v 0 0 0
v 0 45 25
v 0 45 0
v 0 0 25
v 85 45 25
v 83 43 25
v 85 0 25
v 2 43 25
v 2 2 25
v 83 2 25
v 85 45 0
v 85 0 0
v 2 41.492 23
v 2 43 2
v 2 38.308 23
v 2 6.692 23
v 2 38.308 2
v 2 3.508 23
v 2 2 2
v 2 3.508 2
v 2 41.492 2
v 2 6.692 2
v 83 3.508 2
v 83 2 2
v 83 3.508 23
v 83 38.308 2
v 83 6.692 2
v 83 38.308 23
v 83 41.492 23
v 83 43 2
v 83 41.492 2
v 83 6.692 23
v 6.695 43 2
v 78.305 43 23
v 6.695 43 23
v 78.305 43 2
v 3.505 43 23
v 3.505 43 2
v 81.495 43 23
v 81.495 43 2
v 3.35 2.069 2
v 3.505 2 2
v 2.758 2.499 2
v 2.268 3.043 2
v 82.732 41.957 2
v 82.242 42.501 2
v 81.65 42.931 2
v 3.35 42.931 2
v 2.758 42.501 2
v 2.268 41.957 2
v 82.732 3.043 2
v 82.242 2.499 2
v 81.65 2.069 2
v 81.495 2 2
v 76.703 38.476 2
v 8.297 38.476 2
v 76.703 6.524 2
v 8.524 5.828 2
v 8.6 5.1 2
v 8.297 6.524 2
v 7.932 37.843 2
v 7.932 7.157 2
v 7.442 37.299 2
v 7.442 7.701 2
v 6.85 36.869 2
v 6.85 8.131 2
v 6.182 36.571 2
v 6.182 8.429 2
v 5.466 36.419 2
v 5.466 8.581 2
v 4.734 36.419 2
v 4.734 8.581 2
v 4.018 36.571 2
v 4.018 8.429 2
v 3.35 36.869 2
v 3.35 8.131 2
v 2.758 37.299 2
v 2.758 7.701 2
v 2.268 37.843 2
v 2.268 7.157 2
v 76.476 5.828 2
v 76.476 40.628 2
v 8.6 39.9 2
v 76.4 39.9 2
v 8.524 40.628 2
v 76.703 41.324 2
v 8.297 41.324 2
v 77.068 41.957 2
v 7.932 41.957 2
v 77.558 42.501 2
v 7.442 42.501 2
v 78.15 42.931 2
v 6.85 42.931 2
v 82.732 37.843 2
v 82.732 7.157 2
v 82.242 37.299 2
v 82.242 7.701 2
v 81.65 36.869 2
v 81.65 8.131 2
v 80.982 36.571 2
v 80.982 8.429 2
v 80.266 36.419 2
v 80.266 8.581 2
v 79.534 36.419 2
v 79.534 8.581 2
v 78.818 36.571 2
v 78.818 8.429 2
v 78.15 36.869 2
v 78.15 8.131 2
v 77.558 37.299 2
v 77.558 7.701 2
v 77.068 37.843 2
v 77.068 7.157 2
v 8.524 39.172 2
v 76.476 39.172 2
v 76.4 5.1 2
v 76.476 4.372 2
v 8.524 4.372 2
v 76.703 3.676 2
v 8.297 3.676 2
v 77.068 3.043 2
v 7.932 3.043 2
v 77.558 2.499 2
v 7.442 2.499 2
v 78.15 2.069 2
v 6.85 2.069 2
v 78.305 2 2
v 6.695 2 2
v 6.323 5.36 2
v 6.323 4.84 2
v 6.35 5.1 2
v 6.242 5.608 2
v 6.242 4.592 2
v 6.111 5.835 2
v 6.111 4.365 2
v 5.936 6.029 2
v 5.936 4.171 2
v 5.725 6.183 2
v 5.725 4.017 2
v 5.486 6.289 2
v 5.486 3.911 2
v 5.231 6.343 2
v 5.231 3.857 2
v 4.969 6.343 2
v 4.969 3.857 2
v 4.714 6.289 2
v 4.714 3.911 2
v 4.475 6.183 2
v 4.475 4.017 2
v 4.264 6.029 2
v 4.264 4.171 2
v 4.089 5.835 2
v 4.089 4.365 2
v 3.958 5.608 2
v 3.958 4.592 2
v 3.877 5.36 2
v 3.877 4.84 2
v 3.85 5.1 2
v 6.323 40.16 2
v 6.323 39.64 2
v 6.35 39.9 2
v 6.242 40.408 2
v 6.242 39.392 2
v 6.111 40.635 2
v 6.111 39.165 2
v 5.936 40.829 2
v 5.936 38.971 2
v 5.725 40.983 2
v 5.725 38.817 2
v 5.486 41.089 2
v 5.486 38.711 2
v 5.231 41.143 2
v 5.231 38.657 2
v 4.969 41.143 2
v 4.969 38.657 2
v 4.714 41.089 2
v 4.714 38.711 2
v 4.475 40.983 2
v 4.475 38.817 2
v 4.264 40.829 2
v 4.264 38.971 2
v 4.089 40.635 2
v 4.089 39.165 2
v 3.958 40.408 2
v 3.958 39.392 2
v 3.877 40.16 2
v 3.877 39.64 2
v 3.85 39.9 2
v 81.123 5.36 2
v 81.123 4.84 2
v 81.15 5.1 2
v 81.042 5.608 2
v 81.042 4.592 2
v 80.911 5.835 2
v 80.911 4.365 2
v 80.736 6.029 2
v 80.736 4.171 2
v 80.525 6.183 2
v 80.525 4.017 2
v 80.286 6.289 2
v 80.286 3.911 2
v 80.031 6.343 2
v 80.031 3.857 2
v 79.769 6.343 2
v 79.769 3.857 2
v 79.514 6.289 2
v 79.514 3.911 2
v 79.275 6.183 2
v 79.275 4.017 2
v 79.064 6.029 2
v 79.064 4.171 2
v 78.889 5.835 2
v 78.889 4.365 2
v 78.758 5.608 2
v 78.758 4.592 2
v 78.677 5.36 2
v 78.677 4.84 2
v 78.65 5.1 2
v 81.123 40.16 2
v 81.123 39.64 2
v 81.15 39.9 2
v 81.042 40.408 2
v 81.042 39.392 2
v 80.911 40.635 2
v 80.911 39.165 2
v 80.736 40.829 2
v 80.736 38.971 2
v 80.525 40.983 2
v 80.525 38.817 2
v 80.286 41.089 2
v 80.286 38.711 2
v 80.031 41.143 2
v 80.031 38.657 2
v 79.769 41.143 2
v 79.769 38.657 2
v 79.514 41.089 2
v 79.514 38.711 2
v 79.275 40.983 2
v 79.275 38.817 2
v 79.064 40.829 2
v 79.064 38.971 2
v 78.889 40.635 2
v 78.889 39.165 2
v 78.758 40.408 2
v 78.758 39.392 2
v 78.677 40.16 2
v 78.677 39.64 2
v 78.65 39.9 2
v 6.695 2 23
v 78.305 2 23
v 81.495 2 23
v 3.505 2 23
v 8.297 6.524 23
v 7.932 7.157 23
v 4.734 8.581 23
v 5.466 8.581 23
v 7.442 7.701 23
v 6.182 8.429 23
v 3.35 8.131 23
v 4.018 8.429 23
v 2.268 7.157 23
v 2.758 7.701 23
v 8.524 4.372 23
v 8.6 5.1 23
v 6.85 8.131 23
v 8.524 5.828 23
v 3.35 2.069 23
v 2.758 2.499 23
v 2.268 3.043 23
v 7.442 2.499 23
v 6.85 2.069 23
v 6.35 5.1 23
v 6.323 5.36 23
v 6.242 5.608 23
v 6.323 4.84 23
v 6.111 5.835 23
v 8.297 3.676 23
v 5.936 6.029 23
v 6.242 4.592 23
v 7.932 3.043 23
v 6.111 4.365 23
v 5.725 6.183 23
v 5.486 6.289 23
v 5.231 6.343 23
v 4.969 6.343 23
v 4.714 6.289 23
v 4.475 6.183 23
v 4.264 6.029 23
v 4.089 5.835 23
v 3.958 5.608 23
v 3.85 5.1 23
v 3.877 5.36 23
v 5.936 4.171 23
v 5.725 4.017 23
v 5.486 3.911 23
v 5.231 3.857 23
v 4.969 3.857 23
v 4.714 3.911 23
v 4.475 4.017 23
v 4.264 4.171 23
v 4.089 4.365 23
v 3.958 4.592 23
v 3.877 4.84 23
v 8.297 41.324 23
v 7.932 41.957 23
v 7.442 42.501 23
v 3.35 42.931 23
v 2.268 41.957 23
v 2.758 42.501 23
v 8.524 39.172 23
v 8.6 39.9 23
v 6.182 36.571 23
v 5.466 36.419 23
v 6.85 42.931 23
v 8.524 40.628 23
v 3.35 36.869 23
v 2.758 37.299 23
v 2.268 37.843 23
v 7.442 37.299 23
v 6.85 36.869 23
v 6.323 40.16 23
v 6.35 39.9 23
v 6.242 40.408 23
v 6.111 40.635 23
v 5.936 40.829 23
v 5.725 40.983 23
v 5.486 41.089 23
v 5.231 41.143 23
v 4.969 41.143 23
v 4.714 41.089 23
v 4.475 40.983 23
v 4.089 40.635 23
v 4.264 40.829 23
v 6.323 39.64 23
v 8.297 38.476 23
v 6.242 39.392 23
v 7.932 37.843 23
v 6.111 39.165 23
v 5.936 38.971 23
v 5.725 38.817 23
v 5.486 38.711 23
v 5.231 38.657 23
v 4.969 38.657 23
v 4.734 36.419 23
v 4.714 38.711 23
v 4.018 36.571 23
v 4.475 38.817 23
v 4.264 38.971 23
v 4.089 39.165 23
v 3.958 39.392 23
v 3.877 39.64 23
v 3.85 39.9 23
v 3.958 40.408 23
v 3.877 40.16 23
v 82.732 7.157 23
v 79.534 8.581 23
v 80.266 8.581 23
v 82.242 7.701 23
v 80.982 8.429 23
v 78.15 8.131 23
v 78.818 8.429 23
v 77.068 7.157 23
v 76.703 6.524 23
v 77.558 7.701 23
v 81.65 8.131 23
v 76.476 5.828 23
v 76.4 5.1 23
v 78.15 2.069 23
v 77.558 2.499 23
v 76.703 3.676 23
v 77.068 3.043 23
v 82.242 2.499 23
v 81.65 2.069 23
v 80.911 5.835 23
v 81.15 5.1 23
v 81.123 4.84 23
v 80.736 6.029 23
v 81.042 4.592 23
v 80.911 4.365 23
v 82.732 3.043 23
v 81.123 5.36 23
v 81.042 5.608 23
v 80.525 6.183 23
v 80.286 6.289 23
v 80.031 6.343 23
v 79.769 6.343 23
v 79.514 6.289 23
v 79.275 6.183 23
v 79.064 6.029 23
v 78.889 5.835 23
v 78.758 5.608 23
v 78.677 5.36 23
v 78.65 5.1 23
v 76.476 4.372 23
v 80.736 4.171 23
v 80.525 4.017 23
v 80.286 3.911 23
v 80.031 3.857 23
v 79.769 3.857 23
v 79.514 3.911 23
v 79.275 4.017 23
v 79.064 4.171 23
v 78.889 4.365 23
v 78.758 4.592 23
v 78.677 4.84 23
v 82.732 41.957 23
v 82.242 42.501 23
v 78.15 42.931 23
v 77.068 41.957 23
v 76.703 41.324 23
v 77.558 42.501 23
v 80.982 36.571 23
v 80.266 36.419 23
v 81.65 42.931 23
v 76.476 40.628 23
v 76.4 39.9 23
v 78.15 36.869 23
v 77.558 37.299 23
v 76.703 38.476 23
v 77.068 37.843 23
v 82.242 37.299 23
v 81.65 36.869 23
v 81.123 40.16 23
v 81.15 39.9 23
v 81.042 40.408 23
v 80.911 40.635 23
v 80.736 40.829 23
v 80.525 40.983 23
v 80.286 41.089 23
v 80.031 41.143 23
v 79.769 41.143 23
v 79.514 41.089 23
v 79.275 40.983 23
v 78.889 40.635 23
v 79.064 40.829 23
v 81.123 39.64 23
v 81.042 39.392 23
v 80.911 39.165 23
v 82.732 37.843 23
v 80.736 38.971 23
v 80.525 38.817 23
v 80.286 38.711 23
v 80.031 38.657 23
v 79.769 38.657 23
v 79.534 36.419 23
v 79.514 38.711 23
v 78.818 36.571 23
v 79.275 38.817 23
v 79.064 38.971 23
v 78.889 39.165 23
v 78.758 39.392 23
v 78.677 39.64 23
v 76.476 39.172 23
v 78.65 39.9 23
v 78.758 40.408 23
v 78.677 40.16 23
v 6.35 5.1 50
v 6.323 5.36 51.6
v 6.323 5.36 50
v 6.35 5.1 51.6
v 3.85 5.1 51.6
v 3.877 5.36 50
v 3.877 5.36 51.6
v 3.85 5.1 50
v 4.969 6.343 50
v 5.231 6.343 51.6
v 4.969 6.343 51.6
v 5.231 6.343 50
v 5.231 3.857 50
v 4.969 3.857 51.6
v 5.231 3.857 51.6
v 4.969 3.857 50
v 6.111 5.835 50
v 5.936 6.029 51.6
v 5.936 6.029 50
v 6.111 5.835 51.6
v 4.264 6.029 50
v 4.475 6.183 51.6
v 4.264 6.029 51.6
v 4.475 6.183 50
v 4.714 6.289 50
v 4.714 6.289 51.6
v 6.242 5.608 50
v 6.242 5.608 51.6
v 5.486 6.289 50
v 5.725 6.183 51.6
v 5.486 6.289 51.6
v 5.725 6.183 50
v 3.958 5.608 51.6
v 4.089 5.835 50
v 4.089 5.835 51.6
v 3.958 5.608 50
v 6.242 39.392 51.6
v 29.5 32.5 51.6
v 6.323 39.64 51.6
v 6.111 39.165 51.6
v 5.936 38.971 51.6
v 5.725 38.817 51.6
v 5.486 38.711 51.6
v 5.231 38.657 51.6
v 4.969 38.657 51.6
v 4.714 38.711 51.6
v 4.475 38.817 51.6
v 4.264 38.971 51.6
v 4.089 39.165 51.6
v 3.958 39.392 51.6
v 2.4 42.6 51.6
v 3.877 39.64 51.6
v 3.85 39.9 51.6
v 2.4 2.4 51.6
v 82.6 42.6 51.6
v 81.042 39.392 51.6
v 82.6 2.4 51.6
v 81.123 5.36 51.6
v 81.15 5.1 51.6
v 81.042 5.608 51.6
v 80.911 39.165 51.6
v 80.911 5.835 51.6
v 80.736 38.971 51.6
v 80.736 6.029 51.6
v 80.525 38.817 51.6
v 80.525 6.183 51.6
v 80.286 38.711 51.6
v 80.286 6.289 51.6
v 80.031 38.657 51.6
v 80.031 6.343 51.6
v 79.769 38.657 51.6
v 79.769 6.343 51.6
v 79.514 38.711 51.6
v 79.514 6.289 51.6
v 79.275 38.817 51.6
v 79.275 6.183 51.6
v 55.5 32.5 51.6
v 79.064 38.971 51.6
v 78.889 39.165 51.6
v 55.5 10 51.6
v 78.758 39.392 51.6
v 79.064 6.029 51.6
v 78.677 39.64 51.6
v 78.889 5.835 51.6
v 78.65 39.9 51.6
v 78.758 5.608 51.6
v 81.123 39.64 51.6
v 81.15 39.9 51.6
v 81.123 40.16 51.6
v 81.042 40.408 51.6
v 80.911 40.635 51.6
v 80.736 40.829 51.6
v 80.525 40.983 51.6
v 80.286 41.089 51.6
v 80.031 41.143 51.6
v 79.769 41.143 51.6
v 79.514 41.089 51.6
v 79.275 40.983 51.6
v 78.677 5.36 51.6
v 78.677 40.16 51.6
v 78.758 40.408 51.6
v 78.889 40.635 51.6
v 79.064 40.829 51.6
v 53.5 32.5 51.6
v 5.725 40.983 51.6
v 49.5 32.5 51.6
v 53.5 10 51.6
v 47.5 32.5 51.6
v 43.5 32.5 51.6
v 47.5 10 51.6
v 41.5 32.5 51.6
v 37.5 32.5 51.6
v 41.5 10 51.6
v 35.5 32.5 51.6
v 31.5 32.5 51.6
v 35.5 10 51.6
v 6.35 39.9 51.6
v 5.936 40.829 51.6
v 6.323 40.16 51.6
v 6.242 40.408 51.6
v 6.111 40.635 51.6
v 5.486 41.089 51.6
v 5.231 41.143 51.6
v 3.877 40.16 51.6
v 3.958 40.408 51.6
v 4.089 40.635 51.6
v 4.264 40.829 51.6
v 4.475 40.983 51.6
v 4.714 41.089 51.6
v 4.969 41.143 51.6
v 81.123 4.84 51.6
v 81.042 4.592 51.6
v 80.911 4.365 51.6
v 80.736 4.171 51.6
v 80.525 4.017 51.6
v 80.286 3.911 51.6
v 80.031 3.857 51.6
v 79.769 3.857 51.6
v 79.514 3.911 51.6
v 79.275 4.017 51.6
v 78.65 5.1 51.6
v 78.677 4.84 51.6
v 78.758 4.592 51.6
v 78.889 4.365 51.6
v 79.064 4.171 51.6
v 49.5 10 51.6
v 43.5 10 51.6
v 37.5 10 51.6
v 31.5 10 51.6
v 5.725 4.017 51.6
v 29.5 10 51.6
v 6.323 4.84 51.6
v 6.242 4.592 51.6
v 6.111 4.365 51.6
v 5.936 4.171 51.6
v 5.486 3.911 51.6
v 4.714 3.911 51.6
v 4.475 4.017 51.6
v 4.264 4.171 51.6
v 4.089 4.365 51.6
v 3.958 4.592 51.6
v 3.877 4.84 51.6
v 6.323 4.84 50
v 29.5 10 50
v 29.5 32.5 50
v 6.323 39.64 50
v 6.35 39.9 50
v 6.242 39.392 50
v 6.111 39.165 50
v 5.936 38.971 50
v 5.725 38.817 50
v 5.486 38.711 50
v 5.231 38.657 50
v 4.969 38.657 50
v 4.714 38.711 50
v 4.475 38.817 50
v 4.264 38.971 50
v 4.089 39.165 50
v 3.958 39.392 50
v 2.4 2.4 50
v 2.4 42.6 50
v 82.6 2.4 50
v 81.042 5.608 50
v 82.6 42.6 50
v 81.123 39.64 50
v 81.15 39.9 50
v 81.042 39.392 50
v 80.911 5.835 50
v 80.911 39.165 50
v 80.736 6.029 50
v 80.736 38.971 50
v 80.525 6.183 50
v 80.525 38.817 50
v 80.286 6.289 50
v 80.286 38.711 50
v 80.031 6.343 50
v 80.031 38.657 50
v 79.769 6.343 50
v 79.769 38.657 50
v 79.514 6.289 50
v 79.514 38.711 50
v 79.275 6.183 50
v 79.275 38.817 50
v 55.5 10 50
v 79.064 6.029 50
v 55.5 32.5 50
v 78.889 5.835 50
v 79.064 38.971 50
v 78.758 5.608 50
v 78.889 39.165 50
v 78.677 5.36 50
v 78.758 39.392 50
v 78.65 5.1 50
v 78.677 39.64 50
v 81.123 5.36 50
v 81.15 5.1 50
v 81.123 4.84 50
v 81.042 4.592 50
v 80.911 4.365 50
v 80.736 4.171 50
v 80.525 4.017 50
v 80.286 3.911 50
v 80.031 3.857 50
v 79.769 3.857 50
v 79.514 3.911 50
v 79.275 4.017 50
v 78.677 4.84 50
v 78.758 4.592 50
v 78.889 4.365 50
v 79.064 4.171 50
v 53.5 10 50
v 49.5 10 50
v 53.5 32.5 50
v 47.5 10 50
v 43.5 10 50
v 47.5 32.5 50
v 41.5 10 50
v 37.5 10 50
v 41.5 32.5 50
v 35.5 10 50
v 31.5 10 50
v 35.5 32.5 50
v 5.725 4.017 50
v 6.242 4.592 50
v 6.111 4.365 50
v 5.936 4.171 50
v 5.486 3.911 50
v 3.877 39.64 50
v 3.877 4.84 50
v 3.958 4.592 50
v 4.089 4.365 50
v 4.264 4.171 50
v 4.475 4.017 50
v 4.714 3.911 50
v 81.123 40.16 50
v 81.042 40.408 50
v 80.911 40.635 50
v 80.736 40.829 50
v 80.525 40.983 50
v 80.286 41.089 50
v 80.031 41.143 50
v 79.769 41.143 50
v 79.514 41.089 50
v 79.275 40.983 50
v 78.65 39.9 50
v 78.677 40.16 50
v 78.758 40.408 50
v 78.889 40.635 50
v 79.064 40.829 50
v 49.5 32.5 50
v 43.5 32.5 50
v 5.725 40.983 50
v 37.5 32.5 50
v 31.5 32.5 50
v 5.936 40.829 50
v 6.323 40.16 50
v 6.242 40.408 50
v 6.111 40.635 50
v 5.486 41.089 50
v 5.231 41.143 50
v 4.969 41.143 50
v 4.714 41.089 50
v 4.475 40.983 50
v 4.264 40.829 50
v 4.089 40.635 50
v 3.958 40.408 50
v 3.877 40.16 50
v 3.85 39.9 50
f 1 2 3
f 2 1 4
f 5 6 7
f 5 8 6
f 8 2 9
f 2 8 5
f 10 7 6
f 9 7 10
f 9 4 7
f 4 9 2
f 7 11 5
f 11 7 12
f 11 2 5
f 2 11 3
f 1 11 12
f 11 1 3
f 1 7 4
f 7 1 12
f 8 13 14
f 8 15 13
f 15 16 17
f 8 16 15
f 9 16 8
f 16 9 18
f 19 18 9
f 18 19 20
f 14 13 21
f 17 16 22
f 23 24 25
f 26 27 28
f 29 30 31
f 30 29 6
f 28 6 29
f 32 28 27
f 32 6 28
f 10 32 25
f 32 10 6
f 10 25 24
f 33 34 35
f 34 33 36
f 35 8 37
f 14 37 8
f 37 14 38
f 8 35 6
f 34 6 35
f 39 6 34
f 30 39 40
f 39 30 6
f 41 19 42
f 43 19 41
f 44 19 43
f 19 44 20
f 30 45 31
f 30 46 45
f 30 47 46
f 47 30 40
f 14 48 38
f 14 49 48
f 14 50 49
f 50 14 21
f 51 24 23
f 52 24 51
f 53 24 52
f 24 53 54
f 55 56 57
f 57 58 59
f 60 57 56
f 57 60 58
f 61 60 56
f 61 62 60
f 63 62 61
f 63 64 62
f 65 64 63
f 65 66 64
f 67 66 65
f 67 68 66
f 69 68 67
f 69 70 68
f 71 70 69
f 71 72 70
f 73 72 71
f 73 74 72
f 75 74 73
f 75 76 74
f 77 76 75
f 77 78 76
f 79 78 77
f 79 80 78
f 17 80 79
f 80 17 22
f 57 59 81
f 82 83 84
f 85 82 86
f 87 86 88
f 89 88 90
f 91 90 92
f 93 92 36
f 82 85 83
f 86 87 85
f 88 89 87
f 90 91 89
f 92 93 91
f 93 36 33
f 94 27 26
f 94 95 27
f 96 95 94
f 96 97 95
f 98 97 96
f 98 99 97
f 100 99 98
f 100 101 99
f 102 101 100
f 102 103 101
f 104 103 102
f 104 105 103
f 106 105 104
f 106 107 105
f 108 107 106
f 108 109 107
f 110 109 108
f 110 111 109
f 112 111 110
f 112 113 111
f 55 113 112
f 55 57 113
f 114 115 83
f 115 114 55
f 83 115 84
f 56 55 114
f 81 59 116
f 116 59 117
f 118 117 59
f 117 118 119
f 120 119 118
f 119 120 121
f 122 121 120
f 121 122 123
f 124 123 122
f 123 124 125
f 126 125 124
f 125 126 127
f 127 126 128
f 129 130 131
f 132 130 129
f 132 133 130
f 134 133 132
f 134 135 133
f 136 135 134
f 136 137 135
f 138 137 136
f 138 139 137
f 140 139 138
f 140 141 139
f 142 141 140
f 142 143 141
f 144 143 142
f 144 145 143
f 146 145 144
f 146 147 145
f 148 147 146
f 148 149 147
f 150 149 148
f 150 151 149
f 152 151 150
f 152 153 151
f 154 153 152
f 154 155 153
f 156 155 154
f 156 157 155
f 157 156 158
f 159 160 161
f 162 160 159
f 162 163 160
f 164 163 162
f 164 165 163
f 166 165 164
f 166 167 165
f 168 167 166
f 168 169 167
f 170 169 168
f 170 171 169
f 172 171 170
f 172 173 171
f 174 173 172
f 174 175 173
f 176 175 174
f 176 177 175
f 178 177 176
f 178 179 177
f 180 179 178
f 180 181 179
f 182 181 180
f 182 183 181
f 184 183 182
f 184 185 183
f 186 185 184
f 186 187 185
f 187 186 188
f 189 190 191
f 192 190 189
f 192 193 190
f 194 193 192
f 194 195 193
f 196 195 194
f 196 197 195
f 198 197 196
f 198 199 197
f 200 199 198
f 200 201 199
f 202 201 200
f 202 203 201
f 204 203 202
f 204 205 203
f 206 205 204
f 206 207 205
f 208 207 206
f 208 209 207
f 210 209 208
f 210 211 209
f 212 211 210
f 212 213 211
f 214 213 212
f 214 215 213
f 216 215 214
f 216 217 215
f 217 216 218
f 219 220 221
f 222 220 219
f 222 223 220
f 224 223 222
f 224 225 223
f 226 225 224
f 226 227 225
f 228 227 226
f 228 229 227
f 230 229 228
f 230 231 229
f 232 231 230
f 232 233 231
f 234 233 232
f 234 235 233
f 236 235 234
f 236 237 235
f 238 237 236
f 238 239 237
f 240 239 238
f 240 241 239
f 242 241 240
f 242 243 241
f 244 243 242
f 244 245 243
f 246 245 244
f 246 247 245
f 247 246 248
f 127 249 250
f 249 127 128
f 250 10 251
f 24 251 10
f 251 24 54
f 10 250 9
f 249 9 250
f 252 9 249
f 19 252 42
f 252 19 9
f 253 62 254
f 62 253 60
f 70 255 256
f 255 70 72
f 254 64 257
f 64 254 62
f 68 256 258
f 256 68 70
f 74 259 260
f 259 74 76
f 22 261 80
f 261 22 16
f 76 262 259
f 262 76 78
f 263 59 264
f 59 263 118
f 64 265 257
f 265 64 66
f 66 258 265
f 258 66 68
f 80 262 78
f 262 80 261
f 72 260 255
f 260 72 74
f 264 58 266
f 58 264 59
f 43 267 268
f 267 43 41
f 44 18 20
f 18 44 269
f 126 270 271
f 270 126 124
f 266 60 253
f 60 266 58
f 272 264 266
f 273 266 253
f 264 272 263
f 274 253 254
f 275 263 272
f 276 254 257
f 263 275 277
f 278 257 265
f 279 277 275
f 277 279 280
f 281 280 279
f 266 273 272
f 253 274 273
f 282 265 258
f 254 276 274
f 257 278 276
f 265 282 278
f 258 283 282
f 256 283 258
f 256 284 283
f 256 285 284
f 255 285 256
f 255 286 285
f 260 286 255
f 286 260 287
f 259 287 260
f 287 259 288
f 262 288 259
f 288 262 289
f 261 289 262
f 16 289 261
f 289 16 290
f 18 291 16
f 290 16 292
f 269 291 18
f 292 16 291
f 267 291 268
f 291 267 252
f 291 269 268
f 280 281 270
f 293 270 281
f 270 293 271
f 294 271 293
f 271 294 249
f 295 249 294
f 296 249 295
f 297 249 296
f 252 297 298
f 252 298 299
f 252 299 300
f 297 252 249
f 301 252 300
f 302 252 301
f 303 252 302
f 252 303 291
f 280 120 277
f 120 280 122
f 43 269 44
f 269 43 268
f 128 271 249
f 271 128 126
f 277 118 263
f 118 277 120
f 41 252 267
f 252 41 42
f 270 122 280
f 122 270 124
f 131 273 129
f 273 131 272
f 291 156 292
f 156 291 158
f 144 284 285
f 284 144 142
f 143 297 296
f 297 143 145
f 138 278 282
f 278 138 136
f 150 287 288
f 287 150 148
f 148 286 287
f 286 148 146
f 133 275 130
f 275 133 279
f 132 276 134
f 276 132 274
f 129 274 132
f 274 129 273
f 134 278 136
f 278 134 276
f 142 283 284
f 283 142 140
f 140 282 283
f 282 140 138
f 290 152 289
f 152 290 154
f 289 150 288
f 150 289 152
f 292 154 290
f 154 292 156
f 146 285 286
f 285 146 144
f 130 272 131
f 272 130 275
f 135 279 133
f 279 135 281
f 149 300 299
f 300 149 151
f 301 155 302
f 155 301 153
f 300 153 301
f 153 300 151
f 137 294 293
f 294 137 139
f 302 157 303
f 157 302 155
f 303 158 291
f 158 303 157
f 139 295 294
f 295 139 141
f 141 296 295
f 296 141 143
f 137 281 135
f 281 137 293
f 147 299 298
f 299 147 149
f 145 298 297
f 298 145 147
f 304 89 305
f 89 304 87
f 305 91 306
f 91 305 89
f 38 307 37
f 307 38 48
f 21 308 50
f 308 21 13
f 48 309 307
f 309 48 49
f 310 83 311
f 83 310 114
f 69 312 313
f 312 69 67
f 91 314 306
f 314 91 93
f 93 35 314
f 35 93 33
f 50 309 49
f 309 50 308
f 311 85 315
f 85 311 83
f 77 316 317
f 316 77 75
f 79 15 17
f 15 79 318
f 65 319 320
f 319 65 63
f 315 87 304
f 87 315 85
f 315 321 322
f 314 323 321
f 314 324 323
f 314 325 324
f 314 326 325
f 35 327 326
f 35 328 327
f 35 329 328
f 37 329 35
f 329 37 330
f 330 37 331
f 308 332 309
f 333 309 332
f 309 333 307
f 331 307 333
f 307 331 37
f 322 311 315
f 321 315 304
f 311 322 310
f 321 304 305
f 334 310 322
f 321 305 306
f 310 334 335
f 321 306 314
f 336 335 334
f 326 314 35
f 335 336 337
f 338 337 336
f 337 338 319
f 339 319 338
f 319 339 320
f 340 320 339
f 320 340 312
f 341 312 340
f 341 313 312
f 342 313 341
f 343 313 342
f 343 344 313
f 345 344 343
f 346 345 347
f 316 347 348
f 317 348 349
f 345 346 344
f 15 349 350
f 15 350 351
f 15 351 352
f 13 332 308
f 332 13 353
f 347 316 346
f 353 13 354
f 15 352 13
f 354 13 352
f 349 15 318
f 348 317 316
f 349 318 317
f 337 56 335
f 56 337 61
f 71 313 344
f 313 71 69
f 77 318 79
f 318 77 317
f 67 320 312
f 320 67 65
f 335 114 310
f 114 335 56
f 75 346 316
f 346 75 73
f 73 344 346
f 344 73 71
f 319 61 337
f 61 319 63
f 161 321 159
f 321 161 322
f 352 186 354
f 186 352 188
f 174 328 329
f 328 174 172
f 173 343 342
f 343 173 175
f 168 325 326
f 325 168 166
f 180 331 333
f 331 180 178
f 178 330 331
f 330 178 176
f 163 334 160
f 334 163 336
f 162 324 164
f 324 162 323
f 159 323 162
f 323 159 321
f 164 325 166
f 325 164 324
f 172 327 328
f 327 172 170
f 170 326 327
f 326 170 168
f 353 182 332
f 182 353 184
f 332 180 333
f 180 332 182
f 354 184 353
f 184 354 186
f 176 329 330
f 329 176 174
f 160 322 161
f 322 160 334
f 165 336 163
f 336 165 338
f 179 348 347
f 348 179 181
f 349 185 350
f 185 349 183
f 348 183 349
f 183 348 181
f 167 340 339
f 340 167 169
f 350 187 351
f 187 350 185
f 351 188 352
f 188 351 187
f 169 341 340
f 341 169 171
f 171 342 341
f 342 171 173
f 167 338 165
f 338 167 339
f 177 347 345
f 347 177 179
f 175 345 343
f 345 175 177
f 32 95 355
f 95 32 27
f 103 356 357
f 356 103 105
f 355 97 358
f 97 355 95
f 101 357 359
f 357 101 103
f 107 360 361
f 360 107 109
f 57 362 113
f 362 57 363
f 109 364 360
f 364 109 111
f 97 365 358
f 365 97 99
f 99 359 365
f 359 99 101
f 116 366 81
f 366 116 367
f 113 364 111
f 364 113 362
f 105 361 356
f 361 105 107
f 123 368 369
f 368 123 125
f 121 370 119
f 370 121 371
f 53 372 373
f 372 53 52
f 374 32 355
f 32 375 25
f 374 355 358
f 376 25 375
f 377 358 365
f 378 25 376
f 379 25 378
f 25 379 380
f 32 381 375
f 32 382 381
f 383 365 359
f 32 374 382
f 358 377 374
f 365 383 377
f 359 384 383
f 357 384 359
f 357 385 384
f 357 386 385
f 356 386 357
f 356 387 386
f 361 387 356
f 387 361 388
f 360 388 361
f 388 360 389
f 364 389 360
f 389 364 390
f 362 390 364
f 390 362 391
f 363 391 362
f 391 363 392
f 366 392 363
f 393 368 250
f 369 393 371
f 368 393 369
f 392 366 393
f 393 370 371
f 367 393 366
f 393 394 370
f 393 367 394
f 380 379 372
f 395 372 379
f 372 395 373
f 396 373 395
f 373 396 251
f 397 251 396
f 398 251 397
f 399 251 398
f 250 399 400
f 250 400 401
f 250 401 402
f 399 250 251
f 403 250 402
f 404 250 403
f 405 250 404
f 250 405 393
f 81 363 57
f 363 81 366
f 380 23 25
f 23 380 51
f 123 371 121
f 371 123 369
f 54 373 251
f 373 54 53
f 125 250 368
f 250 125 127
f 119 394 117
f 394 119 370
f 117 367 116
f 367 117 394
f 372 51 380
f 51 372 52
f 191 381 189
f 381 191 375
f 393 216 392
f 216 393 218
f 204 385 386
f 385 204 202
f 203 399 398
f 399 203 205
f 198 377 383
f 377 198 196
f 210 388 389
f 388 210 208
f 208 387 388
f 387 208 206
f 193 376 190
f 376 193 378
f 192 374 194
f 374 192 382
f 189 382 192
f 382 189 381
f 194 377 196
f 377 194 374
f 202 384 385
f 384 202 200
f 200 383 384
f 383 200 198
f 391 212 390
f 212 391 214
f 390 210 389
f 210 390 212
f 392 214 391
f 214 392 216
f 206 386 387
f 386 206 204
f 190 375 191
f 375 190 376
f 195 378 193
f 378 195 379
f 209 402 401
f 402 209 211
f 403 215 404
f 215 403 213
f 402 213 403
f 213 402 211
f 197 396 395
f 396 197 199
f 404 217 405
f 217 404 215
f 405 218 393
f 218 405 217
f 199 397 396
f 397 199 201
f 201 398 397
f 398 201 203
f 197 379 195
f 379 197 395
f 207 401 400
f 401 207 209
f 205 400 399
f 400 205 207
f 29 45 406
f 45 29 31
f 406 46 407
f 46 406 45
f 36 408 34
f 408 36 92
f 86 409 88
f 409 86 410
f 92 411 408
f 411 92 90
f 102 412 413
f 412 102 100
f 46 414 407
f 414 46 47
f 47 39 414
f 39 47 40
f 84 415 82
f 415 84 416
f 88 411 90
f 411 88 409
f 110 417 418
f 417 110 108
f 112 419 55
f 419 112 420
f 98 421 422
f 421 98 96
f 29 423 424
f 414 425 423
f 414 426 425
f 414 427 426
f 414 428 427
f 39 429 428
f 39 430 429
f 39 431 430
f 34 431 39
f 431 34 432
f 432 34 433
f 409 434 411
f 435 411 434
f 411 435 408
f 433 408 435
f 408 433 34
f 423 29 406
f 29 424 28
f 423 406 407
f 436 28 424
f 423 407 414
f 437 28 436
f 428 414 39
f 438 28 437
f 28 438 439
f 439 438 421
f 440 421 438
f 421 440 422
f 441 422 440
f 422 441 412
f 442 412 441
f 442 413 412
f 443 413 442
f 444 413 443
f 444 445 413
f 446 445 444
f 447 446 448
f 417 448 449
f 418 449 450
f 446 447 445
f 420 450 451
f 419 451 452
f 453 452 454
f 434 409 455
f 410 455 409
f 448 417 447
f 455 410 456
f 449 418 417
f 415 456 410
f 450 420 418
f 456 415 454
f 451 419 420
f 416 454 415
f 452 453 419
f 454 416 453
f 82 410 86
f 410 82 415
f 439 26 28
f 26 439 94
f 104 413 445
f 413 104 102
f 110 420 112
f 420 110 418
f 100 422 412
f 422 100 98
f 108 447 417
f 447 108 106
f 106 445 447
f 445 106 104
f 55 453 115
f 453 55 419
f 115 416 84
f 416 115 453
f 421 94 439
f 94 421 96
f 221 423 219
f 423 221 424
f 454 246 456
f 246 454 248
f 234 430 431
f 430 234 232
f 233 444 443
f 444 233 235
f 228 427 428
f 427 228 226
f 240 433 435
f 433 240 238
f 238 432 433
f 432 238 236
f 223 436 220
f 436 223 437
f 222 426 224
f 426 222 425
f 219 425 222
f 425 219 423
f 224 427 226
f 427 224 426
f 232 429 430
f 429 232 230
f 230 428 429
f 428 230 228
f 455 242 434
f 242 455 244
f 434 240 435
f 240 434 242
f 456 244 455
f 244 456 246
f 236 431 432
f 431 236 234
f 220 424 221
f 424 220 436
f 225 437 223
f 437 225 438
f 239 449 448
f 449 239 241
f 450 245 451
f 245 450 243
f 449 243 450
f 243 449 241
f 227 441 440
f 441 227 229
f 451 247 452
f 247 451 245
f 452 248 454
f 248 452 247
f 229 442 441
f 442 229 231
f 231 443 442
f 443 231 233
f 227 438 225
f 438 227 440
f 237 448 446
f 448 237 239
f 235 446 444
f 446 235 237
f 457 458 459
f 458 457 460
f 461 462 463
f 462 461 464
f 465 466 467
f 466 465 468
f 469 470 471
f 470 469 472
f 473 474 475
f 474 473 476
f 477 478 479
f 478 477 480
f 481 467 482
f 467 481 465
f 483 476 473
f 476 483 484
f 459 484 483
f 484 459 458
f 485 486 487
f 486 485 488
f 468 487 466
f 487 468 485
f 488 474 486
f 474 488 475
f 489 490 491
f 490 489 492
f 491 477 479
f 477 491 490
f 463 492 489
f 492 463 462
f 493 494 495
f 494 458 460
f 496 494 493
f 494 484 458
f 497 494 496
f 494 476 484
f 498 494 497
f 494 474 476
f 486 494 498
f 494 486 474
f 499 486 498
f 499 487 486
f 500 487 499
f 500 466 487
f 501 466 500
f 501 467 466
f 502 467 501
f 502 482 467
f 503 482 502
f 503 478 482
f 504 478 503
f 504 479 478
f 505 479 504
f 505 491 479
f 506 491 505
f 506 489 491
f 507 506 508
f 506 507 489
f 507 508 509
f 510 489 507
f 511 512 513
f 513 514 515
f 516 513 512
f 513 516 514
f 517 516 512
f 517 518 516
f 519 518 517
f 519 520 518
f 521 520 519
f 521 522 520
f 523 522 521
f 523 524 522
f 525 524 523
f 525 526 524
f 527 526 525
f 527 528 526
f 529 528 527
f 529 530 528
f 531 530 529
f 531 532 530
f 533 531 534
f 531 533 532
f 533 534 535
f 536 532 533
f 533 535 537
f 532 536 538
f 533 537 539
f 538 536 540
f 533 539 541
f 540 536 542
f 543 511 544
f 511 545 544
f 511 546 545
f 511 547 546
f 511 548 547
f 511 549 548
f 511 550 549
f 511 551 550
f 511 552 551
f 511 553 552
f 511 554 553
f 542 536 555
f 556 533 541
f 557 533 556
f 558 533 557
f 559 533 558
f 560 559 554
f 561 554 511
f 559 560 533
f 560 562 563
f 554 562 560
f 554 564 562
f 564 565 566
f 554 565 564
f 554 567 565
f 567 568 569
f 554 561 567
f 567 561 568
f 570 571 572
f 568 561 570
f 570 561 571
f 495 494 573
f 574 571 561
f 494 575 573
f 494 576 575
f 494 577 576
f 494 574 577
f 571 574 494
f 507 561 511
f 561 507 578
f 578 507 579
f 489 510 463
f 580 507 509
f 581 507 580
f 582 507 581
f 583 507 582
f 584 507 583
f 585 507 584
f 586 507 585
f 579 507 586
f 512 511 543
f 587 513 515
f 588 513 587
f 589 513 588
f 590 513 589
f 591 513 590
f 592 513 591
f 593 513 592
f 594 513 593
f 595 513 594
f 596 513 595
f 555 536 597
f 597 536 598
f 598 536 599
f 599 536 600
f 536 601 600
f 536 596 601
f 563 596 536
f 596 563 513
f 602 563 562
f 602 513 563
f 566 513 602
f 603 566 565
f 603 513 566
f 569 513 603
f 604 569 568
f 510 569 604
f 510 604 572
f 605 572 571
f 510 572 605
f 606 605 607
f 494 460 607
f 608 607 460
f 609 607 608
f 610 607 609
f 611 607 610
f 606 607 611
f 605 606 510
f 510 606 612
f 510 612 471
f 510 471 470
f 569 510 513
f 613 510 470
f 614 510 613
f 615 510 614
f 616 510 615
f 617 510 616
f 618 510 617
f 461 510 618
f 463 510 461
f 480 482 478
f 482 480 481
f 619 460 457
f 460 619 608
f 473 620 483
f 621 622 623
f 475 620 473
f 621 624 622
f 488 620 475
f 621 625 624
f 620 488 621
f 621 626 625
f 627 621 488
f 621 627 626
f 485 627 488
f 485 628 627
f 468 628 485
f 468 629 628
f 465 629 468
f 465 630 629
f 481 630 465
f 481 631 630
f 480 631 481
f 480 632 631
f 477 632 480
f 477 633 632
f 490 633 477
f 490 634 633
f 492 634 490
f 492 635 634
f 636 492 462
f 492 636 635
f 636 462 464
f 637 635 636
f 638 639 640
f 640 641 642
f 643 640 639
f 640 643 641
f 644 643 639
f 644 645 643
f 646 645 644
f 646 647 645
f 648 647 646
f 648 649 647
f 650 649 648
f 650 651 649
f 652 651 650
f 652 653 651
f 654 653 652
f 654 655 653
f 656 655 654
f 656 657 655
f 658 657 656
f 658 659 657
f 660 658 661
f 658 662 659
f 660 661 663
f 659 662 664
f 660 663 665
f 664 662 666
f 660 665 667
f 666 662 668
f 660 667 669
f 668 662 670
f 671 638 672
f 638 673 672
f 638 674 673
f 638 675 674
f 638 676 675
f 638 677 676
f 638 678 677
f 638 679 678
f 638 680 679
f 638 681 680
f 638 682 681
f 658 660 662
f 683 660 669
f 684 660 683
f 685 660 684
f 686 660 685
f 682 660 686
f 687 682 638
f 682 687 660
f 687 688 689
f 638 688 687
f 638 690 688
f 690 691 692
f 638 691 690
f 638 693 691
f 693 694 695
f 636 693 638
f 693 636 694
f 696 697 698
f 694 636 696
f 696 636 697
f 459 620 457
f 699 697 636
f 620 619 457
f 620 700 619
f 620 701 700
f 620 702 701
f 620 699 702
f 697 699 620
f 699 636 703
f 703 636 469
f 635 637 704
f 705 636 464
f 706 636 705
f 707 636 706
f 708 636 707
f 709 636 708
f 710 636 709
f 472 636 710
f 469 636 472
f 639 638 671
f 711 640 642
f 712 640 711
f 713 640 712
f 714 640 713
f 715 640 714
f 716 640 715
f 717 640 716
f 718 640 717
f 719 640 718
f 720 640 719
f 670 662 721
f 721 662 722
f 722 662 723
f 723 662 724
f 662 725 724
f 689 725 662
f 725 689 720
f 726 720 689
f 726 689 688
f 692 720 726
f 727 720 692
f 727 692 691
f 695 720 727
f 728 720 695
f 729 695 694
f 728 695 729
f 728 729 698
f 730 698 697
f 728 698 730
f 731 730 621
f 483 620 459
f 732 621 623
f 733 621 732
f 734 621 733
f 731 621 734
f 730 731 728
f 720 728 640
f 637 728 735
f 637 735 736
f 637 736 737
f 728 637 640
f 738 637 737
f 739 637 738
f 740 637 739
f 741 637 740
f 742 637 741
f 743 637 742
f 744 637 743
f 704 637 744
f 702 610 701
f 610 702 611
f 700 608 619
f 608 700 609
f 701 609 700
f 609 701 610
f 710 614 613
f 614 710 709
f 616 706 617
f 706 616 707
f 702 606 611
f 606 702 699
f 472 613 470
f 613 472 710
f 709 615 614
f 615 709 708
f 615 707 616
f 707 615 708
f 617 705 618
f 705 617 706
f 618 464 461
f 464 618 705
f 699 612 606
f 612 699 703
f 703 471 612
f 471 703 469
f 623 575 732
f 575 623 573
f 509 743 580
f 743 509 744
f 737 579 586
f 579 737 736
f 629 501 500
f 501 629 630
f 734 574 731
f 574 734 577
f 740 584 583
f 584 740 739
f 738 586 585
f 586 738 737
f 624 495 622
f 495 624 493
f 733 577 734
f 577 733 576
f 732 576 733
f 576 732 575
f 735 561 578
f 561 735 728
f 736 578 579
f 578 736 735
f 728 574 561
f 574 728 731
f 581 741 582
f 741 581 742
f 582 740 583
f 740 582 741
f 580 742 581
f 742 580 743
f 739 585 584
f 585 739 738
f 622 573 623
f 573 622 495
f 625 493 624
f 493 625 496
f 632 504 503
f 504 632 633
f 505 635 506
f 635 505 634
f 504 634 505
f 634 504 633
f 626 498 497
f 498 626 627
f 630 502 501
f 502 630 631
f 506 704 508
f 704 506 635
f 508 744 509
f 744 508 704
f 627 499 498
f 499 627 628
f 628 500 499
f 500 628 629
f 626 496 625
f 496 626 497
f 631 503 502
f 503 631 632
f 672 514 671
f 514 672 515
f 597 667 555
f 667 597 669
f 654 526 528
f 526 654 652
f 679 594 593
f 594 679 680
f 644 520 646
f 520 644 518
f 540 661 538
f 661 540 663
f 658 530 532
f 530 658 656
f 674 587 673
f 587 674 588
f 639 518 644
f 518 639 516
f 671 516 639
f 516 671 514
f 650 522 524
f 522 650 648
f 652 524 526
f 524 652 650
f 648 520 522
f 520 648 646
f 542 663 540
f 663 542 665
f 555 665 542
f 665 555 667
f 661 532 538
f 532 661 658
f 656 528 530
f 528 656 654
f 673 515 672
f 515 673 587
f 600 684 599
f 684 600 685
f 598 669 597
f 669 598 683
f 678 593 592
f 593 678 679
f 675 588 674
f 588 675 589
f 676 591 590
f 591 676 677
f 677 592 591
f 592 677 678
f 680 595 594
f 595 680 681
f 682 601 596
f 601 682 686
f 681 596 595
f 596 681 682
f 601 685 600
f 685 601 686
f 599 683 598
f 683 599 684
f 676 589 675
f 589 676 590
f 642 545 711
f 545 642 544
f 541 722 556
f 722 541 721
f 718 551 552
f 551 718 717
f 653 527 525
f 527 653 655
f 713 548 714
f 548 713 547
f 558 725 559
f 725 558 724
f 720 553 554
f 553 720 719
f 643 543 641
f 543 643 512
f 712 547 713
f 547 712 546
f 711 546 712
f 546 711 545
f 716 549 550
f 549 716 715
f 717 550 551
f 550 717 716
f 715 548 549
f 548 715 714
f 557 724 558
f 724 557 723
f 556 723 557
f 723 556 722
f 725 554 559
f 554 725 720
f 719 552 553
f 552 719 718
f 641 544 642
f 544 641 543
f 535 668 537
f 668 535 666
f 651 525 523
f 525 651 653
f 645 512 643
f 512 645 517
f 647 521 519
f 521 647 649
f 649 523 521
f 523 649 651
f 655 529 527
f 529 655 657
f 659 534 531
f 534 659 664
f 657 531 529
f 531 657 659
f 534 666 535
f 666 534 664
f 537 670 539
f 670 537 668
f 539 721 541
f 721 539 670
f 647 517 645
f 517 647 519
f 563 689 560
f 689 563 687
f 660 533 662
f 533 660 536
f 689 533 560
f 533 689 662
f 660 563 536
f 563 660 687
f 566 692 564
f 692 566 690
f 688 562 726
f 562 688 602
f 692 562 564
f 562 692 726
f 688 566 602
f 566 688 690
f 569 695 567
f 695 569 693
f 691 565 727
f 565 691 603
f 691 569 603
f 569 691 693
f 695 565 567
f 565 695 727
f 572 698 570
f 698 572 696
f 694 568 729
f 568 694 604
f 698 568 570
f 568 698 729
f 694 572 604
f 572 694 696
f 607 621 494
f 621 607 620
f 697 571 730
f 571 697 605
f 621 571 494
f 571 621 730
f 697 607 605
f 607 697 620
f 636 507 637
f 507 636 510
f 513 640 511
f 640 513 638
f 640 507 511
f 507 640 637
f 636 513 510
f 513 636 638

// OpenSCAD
ABox2(
    length = 85, width = 45, height = 25, thickness = 2,
    box = true, cap = true, chargeHole = false, foot = false, window = false,
    windowLength = 60, windowWidth = 55,
    gap = 0.4, holes = false, lighten = true,
    screwTowerDiameter = 7, screwDiameter = 2.5
);

module ABox2(
    length, width, height, thickness,
    box, cap, chargeHole, foot, window,
    windowLength, windowWidth,
    gap, holes, lighten,
    screwTowerDiameter, screwDiameter,
){
    holes = [
        [thickness + screwTowerDiameter / 2 - gap, thickness + screwTowerDiameter / 2 - gap, 0],
        [thickness + screwTowerDiameter / 2 - gap, width - thickness - screwTowerDiameter / 2 + gap, 0],
        //[length / 2, width - thickness - screwTowerDiameter / 2 + gap, 0],
        [length - screwTowerDiameter / 2 + gap - thickness, thickness + screwTowerDiameter / 2 - gap, 0],
        [length - screwTowerDiameter / 2 + gap - thickness, width - thickness - screwTowerDiameter / 2 + gap, 0],
        //[length / 2, thickness + screwTowerDiameter / 2 - gap, 0],
    ];    
    if (box){
        union(){
            difference(){
                cube ([length, width, height], center = false);
                translate([thickness, thickness, thickness]) cube ([length - 2 * thickness, width - 2 * thickness, height], center = false);
                translate([thickness, thickness, thickness]) cube ([length - 2 * thickness, width - 2 * thickness, height], center = false);
                if (window){
                    translate([(length - windowLength) / 2, (width - windowWidth) / 2, 0]) cube ([windowLength, windowWidth, thickness], center = false);
                }
            }
            for (hole = holes)
                translate(hole) Tube(screwTowerDiameter, screwDiameter, height - thickness);
        }
    }
    if (cap){
        union(){
            difference(){
                translate([thickness + gap, thickness + gap, 2 * height]) cube ([length - 2 * (thickness + gap), width - 2 * (thickness + gap), thickness - gap], center = false);
                for (hole = holes)
                    translate(hole) translate([0, 0, 2 * height]) cylinder(r = screwDiameter / 2, thickness - gap, center = false, $fn = 30);
                if (chargeHole)
                    translate([length / 2, width - thickness - 15, 2 * height]) cylinder(d = 15, thickness - gap, $fn = 30);
                for (i = [-2:2])
                    translate([length / 2 - 6 * i - 1, 10, 2 * height]) cube([2, width / 2, thickness - gap]);
            }
            if (foot){
                difference(){
                    union(){
                        translate([10 + thickness + gap, width / 2 + thickness + gap, 2 * height + thickness - gap]) rotate([90, 0, 180]) rotate([0, 90, 0]) linear_extrude(height = 10) polygon(points = [[0, 0], [0, width / 2], [width / 2, 0]]);
                        translate([length - gap - thickness, width / 2 + thickness + gap, 2 * height + thickness - gap]) rotate([90, 0, 180]) rotate([0, 90, 0]) linear_extrude(height = 10) polygon(points = [[0, 0], [0, width / 2], [width / 2, 0]]);
                    }
                    for (hole = holes)
                        translate(hole) translate([0, 0, 2 * height + thickness - gap]) cylinder(r = 1.3 * screwDiameter / 2, h = height, center = false, $fn = 30);
                    translate([5 + thickness, width / 2, 2 * height + width / 2]) cube([20, 10, 10], center = true);
                    translate([length - 10 + thickness, width / 2, 2 * height + width / 2]) cube([20, 10, 10], center = true);
                    #translate([0, width / 2 - 8, 2 * height + 8 + 2 * thickness]) rotate([0, 90, 0]) rotate([0, 0, 60]) cylinder(d = 16, length, $fn = 30);
                }
            }
            if (chargeHole)
                translate([length / 2, width - thickness - 15, 2 * height])
                    difference(){
                        cylinder(d = 15, 10, $fn = 30);
                        cylinder(d = 12, 7, $fn = 30);
                        cylinder(d = 8, 10, $fn = 30);
                    }
            
        }
    }
}

module Tube(outerDiameter, innerDiameter, height){
    difference(){
        cylinder(r = outerDiameter / 2, h = height, center = false, $fn = 30);
        cylinder(r = innerDiameter / 2, h = height, center = false, $fn = 30);
    }
}
